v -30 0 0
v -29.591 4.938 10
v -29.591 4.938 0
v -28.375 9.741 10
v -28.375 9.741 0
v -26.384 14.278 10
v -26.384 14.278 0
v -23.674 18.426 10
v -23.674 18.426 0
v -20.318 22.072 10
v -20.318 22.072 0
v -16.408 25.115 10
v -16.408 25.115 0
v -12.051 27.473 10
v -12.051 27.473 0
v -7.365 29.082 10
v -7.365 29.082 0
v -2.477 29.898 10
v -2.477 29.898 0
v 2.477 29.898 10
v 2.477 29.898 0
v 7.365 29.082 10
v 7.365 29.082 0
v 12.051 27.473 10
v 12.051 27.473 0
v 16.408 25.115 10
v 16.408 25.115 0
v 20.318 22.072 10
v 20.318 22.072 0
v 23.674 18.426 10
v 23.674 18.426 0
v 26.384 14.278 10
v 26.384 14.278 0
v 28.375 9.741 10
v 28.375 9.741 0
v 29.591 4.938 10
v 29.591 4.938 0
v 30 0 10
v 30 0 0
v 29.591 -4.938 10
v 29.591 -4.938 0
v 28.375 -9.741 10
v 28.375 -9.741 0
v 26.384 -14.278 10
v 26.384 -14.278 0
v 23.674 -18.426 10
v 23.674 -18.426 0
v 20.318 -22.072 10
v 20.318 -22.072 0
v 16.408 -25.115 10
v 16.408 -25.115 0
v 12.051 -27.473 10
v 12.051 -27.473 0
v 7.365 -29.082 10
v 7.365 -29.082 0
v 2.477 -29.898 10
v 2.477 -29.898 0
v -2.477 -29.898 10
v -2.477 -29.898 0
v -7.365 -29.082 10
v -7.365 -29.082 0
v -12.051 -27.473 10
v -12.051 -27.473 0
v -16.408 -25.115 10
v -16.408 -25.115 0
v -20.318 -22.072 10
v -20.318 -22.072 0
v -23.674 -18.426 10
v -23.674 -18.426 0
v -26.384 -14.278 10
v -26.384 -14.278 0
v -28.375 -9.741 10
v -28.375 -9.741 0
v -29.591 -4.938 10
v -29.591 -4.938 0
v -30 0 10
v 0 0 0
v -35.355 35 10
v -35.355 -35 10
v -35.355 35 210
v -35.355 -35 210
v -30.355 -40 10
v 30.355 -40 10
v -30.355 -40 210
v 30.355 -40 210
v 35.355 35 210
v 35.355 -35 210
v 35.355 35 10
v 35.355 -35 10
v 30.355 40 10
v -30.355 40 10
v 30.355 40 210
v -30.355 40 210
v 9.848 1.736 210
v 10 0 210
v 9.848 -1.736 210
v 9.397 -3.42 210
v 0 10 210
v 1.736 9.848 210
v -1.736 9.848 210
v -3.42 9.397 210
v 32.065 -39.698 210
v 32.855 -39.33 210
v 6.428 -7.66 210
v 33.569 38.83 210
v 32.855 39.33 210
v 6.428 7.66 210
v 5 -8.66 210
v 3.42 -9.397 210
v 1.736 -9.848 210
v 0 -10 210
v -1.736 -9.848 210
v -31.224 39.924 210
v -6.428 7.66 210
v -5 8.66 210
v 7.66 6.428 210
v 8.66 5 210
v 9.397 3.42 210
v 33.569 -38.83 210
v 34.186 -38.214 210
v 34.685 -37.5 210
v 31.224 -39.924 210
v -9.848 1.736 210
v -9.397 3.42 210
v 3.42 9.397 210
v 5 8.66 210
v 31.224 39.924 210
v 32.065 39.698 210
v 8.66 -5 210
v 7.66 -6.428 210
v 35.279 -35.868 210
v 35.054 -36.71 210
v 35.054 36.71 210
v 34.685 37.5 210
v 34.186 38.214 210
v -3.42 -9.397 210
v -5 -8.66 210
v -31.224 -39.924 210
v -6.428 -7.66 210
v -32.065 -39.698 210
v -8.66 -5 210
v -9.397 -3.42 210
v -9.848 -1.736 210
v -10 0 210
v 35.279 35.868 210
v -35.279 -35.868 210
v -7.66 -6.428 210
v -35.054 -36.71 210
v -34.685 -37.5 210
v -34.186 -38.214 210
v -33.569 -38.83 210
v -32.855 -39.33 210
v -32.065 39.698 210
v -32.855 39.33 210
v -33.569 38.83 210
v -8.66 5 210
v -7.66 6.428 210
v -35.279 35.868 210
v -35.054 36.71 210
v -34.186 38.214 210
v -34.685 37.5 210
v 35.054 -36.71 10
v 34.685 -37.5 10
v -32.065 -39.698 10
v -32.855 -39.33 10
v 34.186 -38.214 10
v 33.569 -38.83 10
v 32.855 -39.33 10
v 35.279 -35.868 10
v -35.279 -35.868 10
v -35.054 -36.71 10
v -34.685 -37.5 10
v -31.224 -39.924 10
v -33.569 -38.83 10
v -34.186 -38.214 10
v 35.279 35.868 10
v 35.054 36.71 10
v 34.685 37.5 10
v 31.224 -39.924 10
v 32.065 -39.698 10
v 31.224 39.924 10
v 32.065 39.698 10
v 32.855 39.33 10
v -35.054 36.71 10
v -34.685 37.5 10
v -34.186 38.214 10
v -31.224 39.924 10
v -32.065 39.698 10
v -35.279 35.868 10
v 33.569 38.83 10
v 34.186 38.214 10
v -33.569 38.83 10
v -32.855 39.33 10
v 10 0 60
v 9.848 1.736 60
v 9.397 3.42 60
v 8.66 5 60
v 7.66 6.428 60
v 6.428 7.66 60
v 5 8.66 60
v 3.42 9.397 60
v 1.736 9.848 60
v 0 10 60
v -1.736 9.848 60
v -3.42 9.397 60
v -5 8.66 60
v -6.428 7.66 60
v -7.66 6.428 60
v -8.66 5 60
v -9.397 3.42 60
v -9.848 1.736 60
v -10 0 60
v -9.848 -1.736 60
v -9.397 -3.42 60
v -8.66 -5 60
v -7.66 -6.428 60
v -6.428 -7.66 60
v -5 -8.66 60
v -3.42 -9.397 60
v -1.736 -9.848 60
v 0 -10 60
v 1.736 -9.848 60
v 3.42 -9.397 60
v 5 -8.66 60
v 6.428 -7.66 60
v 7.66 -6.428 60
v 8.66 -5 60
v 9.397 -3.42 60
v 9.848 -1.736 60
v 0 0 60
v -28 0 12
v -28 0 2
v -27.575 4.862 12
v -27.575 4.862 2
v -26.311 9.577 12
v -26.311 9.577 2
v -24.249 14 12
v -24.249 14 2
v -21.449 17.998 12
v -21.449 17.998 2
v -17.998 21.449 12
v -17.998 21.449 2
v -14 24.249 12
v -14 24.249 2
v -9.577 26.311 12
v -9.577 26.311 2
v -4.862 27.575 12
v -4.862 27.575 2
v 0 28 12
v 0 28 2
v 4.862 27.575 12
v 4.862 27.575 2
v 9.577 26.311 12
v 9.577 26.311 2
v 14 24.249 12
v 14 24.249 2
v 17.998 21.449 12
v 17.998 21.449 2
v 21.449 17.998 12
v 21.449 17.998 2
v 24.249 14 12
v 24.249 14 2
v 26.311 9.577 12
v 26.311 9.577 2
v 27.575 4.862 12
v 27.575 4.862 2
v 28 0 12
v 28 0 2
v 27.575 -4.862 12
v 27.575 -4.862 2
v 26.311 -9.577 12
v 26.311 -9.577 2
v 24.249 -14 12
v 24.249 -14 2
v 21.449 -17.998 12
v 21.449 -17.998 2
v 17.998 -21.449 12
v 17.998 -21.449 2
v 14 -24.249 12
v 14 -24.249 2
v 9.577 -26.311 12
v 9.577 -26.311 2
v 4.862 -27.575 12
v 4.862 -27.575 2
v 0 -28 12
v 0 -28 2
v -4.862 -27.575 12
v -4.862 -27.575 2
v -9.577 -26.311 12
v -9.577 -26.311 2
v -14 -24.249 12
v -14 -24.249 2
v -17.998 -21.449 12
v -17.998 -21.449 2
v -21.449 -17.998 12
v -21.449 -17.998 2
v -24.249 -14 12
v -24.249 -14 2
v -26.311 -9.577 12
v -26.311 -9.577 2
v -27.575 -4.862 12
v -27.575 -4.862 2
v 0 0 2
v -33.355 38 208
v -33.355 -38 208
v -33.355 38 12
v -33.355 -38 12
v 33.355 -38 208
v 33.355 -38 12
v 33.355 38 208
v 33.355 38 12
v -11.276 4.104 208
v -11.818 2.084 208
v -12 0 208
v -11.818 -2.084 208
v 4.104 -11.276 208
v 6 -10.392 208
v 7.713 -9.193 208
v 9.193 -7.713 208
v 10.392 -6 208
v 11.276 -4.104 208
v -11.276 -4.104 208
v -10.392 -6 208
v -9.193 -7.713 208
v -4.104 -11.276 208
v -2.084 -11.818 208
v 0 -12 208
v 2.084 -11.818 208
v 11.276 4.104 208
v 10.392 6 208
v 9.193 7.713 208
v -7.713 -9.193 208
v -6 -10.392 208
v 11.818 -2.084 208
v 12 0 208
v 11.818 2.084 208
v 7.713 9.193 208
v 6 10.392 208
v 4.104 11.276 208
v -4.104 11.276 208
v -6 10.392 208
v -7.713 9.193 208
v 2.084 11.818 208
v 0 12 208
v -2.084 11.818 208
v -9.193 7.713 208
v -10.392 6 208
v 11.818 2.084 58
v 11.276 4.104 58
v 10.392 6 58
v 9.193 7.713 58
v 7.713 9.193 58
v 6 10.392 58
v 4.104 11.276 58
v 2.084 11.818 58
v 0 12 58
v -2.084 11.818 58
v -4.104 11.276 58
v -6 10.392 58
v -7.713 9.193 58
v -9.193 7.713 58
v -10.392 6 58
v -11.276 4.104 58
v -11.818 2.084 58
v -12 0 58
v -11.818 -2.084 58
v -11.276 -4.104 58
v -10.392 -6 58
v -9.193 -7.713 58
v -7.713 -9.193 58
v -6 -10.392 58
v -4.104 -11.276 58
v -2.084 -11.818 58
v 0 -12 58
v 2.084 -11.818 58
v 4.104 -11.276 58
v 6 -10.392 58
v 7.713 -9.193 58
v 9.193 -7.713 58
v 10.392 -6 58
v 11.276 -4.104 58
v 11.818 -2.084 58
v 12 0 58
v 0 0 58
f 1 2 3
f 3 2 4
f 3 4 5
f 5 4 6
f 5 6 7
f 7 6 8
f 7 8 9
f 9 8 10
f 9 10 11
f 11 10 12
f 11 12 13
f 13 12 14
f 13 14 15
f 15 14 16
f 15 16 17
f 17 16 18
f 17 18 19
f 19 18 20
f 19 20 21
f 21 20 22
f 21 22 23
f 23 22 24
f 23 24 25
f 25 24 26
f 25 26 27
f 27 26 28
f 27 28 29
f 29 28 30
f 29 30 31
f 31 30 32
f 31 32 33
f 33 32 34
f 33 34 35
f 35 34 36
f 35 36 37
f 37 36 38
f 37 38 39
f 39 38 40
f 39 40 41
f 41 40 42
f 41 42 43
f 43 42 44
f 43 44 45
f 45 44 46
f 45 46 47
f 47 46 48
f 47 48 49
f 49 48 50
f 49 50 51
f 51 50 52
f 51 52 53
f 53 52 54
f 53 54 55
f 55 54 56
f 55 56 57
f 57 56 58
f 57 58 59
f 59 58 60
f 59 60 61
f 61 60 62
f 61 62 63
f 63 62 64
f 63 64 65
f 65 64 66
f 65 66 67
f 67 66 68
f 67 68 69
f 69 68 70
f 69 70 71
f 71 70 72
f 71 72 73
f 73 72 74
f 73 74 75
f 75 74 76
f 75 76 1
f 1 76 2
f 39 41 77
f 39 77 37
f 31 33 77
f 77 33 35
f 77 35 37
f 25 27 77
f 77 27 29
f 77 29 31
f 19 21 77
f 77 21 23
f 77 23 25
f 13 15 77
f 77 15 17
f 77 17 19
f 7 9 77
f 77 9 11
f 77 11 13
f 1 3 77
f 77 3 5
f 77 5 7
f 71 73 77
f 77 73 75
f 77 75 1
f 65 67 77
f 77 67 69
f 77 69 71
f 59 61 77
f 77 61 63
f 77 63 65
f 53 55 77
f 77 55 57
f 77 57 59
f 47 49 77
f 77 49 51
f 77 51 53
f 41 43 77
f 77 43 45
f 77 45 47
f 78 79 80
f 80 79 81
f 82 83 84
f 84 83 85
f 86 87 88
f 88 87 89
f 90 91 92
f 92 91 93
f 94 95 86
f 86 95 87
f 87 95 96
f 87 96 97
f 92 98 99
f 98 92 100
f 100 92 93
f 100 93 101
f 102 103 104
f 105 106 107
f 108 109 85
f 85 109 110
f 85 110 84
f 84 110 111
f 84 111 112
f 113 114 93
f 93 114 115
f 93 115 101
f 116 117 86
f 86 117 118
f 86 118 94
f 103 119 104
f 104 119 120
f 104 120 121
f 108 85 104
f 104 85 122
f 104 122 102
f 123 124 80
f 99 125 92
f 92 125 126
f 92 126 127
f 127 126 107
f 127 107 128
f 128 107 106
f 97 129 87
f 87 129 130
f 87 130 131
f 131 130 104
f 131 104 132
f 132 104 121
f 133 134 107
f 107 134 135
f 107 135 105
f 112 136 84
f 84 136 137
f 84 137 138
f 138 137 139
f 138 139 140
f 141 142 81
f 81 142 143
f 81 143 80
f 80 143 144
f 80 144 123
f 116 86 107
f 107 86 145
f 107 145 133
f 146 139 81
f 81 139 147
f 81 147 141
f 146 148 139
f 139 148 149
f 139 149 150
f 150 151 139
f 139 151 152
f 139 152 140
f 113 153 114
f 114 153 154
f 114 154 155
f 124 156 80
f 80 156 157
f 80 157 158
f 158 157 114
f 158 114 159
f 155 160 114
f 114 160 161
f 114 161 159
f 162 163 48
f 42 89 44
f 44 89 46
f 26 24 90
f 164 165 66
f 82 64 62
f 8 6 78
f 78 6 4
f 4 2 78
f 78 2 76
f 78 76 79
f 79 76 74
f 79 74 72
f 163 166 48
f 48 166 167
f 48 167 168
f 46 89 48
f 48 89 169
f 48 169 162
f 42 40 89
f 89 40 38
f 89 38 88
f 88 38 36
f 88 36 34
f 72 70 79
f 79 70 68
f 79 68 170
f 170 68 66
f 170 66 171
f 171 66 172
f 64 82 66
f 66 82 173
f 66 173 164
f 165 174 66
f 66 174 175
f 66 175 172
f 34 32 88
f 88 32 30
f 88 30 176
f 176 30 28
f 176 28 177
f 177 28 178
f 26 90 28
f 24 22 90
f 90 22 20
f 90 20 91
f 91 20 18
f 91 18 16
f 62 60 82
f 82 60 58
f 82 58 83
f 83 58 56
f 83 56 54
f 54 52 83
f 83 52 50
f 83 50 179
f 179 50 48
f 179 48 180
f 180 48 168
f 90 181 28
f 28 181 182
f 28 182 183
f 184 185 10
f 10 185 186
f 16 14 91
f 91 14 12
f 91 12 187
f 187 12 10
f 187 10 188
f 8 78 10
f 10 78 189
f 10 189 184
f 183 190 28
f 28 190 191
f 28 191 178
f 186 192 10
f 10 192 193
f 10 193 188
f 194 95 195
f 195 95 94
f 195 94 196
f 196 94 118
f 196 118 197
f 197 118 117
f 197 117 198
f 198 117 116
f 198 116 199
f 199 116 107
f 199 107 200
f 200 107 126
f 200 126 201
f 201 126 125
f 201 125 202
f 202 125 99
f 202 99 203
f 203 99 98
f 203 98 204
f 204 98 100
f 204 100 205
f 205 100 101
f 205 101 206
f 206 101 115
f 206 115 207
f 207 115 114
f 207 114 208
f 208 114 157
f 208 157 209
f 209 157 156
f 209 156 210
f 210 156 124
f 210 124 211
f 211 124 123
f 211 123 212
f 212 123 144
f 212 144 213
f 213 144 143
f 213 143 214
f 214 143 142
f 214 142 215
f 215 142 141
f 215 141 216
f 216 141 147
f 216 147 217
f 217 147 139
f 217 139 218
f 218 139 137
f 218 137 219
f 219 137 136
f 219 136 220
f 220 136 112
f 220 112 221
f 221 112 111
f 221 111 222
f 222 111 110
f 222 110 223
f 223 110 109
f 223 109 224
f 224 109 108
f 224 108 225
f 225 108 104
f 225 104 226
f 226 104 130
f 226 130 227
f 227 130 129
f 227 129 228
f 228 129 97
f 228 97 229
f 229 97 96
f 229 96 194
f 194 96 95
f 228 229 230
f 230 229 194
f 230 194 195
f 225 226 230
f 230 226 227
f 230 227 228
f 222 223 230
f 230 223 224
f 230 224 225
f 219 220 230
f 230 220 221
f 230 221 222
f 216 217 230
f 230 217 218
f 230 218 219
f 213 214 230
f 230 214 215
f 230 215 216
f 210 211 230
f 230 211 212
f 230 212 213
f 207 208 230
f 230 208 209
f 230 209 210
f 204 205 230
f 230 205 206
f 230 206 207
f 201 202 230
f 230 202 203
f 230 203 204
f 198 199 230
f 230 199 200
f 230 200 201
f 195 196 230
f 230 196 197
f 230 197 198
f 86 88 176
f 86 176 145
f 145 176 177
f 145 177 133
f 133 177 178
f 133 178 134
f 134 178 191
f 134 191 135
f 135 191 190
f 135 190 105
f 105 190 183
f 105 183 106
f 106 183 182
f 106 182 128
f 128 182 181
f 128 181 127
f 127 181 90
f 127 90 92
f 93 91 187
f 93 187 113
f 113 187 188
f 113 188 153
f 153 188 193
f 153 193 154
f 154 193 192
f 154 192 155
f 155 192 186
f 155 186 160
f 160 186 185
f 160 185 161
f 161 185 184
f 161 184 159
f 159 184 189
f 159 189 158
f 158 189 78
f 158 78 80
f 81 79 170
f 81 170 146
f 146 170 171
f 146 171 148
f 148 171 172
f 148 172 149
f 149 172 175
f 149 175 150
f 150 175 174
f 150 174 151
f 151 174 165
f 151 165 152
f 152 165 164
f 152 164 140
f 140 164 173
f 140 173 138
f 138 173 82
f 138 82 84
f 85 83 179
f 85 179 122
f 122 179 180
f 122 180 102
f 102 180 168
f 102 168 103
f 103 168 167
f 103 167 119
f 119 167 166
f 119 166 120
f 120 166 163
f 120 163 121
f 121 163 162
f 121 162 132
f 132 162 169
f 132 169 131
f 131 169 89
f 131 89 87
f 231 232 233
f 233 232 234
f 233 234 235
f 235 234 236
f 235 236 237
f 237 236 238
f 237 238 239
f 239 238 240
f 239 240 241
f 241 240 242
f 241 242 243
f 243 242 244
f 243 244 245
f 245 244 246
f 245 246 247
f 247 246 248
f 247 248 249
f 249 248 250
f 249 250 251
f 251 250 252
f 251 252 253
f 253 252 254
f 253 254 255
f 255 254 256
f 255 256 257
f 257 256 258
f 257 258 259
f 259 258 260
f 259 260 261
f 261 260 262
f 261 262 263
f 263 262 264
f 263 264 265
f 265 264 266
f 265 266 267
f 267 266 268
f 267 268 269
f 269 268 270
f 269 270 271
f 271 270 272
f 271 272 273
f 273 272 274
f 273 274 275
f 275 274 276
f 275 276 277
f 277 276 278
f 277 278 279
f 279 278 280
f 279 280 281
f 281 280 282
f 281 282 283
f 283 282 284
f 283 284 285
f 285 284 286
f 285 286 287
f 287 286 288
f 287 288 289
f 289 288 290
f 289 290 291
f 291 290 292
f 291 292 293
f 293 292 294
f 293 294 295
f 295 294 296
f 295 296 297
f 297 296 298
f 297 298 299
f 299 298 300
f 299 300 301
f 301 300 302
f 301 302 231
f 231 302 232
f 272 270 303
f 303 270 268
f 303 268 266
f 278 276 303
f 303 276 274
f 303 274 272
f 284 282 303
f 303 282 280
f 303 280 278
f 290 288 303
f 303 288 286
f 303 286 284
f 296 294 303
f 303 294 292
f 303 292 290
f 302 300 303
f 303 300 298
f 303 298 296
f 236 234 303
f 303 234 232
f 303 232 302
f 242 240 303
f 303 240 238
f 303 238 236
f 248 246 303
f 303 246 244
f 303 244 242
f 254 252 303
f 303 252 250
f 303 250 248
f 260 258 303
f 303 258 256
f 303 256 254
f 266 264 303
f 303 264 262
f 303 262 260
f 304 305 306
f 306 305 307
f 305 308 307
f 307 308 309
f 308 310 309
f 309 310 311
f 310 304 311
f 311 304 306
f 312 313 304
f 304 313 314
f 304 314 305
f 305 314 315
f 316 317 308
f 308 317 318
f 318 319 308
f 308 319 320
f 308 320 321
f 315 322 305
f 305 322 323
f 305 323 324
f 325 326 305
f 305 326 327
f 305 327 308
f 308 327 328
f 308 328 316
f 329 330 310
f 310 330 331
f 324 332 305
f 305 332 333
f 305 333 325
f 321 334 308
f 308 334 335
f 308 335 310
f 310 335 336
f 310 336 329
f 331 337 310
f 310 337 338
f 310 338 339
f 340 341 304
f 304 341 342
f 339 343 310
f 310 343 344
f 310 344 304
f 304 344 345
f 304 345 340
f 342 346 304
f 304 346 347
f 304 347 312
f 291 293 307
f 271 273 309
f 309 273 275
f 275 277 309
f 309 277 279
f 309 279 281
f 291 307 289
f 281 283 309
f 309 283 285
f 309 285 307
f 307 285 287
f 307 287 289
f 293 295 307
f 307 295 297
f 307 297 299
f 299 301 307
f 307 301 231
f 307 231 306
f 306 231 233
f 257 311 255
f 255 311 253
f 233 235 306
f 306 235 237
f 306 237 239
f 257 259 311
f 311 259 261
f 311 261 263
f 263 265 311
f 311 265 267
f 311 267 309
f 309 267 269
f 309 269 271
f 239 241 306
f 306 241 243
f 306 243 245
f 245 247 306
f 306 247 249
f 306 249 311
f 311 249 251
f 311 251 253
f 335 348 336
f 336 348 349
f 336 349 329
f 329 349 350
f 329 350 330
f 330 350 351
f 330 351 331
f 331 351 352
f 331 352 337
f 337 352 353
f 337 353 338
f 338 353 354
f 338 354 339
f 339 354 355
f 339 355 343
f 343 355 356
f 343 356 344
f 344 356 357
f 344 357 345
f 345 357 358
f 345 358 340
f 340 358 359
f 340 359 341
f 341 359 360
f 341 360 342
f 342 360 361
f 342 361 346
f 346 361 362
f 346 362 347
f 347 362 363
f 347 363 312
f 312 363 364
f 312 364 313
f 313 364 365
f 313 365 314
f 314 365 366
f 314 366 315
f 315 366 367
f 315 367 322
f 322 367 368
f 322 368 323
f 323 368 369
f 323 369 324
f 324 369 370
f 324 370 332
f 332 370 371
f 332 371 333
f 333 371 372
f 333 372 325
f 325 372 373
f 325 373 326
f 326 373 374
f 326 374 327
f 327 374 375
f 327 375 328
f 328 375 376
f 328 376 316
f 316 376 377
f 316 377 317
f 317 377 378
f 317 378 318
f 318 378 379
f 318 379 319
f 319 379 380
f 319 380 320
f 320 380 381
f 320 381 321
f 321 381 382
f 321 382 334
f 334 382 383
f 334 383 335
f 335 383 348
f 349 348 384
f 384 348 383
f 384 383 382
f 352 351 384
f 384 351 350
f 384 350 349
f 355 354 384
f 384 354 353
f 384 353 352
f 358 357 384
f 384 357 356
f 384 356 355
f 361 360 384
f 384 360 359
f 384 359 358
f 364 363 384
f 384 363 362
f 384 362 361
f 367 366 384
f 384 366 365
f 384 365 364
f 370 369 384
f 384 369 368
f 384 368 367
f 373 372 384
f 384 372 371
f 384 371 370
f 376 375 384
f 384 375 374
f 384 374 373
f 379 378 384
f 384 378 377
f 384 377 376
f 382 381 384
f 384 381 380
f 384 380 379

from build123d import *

# Parameters (mm, degrees)
SKETCH1_R           = 30
BOSS_EXTRUDE1_DEPTH = 10
SKETCH2_W           = 70.710678118
SKETCH2_H           = 80
BOSS_EXTRUDE2_DEPTH = 200
SKETCH3_R           = 10
CUT_EXTRUDE1_DEPTH  = 150
SHELL1_START        = 12
SHELL1_OUTLINE_W    = 66.710678118
SHELL1_OUTLINE_H    = 76
SHELL1_OUTLINE_R    = 12
SHELL1_DEPTH        = 196
SHELL1_START_2      = 2
SHELL1_2_OUTLINE_R  = 28
SHELL1_2_DEPTH      = 56
FILLET1_R           = 5


# Read off the part's stored shape, not the designer's step: Shell1
with BuildPart() as part:
    # Sketch1 → Boss-Extrude1 (new body)
    with BuildSketch(Plane.XY):
        Circle(SKETCH1_R)
    extrude(amount=BOSS_EXTRUDE1_DEPTH)

    # Sketch2 → Boss-Extrude2 (add)
    with BuildSketch(Plane.XY.offset(10)):
        Rectangle(SKETCH2_W, SKETCH2_H)
    extrude(amount=BOSS_EXTRUDE2_DEPTH)

    # Sketch3 → Cut-Extrude1 (cut)
    with BuildSketch(Plane.XY.offset(210)):
        Circle(SKETCH3_R)
    extrude(amount=-CUT_EXTRUDE1_DEPTH, mode=Mode.SUBTRACT)

    # Shell1 outline → Shell1 (cut)
    with BuildSketch(Plane.XY.offset(SHELL1_START)):
        Rectangle(SHELL1_OUTLINE_W, SHELL1_OUTLINE_H)
        Circle(SHELL1_OUTLINE_R, mode=Mode.SUBTRACT)
    extrude(amount=SHELL1_DEPTH, mode=Mode.SUBTRACT)

    # Shell1 2 outline → Shell1 2 (cut)
    with BuildSketch(Plane.XY.offset(SHELL1_START_2)):
        Circle(SHELL1_2_OUTLINE_R)
    extrude(amount=SHELL1_2_DEPTH, mode=Mode.SUBTRACT)

    # Fillet1
    fillet1_edges = [part.edges().sort_by_distance(p)[0] for p in [
        (-35.355339059, 40, 110),
        (-35.355339059, -40, 110),
        (35.355339059, -40, 110),
        (35.355339059, 40, 110),
    ]]
    fillet(fillet1_edges, radius=FILLET1_R)


solid = part.part
